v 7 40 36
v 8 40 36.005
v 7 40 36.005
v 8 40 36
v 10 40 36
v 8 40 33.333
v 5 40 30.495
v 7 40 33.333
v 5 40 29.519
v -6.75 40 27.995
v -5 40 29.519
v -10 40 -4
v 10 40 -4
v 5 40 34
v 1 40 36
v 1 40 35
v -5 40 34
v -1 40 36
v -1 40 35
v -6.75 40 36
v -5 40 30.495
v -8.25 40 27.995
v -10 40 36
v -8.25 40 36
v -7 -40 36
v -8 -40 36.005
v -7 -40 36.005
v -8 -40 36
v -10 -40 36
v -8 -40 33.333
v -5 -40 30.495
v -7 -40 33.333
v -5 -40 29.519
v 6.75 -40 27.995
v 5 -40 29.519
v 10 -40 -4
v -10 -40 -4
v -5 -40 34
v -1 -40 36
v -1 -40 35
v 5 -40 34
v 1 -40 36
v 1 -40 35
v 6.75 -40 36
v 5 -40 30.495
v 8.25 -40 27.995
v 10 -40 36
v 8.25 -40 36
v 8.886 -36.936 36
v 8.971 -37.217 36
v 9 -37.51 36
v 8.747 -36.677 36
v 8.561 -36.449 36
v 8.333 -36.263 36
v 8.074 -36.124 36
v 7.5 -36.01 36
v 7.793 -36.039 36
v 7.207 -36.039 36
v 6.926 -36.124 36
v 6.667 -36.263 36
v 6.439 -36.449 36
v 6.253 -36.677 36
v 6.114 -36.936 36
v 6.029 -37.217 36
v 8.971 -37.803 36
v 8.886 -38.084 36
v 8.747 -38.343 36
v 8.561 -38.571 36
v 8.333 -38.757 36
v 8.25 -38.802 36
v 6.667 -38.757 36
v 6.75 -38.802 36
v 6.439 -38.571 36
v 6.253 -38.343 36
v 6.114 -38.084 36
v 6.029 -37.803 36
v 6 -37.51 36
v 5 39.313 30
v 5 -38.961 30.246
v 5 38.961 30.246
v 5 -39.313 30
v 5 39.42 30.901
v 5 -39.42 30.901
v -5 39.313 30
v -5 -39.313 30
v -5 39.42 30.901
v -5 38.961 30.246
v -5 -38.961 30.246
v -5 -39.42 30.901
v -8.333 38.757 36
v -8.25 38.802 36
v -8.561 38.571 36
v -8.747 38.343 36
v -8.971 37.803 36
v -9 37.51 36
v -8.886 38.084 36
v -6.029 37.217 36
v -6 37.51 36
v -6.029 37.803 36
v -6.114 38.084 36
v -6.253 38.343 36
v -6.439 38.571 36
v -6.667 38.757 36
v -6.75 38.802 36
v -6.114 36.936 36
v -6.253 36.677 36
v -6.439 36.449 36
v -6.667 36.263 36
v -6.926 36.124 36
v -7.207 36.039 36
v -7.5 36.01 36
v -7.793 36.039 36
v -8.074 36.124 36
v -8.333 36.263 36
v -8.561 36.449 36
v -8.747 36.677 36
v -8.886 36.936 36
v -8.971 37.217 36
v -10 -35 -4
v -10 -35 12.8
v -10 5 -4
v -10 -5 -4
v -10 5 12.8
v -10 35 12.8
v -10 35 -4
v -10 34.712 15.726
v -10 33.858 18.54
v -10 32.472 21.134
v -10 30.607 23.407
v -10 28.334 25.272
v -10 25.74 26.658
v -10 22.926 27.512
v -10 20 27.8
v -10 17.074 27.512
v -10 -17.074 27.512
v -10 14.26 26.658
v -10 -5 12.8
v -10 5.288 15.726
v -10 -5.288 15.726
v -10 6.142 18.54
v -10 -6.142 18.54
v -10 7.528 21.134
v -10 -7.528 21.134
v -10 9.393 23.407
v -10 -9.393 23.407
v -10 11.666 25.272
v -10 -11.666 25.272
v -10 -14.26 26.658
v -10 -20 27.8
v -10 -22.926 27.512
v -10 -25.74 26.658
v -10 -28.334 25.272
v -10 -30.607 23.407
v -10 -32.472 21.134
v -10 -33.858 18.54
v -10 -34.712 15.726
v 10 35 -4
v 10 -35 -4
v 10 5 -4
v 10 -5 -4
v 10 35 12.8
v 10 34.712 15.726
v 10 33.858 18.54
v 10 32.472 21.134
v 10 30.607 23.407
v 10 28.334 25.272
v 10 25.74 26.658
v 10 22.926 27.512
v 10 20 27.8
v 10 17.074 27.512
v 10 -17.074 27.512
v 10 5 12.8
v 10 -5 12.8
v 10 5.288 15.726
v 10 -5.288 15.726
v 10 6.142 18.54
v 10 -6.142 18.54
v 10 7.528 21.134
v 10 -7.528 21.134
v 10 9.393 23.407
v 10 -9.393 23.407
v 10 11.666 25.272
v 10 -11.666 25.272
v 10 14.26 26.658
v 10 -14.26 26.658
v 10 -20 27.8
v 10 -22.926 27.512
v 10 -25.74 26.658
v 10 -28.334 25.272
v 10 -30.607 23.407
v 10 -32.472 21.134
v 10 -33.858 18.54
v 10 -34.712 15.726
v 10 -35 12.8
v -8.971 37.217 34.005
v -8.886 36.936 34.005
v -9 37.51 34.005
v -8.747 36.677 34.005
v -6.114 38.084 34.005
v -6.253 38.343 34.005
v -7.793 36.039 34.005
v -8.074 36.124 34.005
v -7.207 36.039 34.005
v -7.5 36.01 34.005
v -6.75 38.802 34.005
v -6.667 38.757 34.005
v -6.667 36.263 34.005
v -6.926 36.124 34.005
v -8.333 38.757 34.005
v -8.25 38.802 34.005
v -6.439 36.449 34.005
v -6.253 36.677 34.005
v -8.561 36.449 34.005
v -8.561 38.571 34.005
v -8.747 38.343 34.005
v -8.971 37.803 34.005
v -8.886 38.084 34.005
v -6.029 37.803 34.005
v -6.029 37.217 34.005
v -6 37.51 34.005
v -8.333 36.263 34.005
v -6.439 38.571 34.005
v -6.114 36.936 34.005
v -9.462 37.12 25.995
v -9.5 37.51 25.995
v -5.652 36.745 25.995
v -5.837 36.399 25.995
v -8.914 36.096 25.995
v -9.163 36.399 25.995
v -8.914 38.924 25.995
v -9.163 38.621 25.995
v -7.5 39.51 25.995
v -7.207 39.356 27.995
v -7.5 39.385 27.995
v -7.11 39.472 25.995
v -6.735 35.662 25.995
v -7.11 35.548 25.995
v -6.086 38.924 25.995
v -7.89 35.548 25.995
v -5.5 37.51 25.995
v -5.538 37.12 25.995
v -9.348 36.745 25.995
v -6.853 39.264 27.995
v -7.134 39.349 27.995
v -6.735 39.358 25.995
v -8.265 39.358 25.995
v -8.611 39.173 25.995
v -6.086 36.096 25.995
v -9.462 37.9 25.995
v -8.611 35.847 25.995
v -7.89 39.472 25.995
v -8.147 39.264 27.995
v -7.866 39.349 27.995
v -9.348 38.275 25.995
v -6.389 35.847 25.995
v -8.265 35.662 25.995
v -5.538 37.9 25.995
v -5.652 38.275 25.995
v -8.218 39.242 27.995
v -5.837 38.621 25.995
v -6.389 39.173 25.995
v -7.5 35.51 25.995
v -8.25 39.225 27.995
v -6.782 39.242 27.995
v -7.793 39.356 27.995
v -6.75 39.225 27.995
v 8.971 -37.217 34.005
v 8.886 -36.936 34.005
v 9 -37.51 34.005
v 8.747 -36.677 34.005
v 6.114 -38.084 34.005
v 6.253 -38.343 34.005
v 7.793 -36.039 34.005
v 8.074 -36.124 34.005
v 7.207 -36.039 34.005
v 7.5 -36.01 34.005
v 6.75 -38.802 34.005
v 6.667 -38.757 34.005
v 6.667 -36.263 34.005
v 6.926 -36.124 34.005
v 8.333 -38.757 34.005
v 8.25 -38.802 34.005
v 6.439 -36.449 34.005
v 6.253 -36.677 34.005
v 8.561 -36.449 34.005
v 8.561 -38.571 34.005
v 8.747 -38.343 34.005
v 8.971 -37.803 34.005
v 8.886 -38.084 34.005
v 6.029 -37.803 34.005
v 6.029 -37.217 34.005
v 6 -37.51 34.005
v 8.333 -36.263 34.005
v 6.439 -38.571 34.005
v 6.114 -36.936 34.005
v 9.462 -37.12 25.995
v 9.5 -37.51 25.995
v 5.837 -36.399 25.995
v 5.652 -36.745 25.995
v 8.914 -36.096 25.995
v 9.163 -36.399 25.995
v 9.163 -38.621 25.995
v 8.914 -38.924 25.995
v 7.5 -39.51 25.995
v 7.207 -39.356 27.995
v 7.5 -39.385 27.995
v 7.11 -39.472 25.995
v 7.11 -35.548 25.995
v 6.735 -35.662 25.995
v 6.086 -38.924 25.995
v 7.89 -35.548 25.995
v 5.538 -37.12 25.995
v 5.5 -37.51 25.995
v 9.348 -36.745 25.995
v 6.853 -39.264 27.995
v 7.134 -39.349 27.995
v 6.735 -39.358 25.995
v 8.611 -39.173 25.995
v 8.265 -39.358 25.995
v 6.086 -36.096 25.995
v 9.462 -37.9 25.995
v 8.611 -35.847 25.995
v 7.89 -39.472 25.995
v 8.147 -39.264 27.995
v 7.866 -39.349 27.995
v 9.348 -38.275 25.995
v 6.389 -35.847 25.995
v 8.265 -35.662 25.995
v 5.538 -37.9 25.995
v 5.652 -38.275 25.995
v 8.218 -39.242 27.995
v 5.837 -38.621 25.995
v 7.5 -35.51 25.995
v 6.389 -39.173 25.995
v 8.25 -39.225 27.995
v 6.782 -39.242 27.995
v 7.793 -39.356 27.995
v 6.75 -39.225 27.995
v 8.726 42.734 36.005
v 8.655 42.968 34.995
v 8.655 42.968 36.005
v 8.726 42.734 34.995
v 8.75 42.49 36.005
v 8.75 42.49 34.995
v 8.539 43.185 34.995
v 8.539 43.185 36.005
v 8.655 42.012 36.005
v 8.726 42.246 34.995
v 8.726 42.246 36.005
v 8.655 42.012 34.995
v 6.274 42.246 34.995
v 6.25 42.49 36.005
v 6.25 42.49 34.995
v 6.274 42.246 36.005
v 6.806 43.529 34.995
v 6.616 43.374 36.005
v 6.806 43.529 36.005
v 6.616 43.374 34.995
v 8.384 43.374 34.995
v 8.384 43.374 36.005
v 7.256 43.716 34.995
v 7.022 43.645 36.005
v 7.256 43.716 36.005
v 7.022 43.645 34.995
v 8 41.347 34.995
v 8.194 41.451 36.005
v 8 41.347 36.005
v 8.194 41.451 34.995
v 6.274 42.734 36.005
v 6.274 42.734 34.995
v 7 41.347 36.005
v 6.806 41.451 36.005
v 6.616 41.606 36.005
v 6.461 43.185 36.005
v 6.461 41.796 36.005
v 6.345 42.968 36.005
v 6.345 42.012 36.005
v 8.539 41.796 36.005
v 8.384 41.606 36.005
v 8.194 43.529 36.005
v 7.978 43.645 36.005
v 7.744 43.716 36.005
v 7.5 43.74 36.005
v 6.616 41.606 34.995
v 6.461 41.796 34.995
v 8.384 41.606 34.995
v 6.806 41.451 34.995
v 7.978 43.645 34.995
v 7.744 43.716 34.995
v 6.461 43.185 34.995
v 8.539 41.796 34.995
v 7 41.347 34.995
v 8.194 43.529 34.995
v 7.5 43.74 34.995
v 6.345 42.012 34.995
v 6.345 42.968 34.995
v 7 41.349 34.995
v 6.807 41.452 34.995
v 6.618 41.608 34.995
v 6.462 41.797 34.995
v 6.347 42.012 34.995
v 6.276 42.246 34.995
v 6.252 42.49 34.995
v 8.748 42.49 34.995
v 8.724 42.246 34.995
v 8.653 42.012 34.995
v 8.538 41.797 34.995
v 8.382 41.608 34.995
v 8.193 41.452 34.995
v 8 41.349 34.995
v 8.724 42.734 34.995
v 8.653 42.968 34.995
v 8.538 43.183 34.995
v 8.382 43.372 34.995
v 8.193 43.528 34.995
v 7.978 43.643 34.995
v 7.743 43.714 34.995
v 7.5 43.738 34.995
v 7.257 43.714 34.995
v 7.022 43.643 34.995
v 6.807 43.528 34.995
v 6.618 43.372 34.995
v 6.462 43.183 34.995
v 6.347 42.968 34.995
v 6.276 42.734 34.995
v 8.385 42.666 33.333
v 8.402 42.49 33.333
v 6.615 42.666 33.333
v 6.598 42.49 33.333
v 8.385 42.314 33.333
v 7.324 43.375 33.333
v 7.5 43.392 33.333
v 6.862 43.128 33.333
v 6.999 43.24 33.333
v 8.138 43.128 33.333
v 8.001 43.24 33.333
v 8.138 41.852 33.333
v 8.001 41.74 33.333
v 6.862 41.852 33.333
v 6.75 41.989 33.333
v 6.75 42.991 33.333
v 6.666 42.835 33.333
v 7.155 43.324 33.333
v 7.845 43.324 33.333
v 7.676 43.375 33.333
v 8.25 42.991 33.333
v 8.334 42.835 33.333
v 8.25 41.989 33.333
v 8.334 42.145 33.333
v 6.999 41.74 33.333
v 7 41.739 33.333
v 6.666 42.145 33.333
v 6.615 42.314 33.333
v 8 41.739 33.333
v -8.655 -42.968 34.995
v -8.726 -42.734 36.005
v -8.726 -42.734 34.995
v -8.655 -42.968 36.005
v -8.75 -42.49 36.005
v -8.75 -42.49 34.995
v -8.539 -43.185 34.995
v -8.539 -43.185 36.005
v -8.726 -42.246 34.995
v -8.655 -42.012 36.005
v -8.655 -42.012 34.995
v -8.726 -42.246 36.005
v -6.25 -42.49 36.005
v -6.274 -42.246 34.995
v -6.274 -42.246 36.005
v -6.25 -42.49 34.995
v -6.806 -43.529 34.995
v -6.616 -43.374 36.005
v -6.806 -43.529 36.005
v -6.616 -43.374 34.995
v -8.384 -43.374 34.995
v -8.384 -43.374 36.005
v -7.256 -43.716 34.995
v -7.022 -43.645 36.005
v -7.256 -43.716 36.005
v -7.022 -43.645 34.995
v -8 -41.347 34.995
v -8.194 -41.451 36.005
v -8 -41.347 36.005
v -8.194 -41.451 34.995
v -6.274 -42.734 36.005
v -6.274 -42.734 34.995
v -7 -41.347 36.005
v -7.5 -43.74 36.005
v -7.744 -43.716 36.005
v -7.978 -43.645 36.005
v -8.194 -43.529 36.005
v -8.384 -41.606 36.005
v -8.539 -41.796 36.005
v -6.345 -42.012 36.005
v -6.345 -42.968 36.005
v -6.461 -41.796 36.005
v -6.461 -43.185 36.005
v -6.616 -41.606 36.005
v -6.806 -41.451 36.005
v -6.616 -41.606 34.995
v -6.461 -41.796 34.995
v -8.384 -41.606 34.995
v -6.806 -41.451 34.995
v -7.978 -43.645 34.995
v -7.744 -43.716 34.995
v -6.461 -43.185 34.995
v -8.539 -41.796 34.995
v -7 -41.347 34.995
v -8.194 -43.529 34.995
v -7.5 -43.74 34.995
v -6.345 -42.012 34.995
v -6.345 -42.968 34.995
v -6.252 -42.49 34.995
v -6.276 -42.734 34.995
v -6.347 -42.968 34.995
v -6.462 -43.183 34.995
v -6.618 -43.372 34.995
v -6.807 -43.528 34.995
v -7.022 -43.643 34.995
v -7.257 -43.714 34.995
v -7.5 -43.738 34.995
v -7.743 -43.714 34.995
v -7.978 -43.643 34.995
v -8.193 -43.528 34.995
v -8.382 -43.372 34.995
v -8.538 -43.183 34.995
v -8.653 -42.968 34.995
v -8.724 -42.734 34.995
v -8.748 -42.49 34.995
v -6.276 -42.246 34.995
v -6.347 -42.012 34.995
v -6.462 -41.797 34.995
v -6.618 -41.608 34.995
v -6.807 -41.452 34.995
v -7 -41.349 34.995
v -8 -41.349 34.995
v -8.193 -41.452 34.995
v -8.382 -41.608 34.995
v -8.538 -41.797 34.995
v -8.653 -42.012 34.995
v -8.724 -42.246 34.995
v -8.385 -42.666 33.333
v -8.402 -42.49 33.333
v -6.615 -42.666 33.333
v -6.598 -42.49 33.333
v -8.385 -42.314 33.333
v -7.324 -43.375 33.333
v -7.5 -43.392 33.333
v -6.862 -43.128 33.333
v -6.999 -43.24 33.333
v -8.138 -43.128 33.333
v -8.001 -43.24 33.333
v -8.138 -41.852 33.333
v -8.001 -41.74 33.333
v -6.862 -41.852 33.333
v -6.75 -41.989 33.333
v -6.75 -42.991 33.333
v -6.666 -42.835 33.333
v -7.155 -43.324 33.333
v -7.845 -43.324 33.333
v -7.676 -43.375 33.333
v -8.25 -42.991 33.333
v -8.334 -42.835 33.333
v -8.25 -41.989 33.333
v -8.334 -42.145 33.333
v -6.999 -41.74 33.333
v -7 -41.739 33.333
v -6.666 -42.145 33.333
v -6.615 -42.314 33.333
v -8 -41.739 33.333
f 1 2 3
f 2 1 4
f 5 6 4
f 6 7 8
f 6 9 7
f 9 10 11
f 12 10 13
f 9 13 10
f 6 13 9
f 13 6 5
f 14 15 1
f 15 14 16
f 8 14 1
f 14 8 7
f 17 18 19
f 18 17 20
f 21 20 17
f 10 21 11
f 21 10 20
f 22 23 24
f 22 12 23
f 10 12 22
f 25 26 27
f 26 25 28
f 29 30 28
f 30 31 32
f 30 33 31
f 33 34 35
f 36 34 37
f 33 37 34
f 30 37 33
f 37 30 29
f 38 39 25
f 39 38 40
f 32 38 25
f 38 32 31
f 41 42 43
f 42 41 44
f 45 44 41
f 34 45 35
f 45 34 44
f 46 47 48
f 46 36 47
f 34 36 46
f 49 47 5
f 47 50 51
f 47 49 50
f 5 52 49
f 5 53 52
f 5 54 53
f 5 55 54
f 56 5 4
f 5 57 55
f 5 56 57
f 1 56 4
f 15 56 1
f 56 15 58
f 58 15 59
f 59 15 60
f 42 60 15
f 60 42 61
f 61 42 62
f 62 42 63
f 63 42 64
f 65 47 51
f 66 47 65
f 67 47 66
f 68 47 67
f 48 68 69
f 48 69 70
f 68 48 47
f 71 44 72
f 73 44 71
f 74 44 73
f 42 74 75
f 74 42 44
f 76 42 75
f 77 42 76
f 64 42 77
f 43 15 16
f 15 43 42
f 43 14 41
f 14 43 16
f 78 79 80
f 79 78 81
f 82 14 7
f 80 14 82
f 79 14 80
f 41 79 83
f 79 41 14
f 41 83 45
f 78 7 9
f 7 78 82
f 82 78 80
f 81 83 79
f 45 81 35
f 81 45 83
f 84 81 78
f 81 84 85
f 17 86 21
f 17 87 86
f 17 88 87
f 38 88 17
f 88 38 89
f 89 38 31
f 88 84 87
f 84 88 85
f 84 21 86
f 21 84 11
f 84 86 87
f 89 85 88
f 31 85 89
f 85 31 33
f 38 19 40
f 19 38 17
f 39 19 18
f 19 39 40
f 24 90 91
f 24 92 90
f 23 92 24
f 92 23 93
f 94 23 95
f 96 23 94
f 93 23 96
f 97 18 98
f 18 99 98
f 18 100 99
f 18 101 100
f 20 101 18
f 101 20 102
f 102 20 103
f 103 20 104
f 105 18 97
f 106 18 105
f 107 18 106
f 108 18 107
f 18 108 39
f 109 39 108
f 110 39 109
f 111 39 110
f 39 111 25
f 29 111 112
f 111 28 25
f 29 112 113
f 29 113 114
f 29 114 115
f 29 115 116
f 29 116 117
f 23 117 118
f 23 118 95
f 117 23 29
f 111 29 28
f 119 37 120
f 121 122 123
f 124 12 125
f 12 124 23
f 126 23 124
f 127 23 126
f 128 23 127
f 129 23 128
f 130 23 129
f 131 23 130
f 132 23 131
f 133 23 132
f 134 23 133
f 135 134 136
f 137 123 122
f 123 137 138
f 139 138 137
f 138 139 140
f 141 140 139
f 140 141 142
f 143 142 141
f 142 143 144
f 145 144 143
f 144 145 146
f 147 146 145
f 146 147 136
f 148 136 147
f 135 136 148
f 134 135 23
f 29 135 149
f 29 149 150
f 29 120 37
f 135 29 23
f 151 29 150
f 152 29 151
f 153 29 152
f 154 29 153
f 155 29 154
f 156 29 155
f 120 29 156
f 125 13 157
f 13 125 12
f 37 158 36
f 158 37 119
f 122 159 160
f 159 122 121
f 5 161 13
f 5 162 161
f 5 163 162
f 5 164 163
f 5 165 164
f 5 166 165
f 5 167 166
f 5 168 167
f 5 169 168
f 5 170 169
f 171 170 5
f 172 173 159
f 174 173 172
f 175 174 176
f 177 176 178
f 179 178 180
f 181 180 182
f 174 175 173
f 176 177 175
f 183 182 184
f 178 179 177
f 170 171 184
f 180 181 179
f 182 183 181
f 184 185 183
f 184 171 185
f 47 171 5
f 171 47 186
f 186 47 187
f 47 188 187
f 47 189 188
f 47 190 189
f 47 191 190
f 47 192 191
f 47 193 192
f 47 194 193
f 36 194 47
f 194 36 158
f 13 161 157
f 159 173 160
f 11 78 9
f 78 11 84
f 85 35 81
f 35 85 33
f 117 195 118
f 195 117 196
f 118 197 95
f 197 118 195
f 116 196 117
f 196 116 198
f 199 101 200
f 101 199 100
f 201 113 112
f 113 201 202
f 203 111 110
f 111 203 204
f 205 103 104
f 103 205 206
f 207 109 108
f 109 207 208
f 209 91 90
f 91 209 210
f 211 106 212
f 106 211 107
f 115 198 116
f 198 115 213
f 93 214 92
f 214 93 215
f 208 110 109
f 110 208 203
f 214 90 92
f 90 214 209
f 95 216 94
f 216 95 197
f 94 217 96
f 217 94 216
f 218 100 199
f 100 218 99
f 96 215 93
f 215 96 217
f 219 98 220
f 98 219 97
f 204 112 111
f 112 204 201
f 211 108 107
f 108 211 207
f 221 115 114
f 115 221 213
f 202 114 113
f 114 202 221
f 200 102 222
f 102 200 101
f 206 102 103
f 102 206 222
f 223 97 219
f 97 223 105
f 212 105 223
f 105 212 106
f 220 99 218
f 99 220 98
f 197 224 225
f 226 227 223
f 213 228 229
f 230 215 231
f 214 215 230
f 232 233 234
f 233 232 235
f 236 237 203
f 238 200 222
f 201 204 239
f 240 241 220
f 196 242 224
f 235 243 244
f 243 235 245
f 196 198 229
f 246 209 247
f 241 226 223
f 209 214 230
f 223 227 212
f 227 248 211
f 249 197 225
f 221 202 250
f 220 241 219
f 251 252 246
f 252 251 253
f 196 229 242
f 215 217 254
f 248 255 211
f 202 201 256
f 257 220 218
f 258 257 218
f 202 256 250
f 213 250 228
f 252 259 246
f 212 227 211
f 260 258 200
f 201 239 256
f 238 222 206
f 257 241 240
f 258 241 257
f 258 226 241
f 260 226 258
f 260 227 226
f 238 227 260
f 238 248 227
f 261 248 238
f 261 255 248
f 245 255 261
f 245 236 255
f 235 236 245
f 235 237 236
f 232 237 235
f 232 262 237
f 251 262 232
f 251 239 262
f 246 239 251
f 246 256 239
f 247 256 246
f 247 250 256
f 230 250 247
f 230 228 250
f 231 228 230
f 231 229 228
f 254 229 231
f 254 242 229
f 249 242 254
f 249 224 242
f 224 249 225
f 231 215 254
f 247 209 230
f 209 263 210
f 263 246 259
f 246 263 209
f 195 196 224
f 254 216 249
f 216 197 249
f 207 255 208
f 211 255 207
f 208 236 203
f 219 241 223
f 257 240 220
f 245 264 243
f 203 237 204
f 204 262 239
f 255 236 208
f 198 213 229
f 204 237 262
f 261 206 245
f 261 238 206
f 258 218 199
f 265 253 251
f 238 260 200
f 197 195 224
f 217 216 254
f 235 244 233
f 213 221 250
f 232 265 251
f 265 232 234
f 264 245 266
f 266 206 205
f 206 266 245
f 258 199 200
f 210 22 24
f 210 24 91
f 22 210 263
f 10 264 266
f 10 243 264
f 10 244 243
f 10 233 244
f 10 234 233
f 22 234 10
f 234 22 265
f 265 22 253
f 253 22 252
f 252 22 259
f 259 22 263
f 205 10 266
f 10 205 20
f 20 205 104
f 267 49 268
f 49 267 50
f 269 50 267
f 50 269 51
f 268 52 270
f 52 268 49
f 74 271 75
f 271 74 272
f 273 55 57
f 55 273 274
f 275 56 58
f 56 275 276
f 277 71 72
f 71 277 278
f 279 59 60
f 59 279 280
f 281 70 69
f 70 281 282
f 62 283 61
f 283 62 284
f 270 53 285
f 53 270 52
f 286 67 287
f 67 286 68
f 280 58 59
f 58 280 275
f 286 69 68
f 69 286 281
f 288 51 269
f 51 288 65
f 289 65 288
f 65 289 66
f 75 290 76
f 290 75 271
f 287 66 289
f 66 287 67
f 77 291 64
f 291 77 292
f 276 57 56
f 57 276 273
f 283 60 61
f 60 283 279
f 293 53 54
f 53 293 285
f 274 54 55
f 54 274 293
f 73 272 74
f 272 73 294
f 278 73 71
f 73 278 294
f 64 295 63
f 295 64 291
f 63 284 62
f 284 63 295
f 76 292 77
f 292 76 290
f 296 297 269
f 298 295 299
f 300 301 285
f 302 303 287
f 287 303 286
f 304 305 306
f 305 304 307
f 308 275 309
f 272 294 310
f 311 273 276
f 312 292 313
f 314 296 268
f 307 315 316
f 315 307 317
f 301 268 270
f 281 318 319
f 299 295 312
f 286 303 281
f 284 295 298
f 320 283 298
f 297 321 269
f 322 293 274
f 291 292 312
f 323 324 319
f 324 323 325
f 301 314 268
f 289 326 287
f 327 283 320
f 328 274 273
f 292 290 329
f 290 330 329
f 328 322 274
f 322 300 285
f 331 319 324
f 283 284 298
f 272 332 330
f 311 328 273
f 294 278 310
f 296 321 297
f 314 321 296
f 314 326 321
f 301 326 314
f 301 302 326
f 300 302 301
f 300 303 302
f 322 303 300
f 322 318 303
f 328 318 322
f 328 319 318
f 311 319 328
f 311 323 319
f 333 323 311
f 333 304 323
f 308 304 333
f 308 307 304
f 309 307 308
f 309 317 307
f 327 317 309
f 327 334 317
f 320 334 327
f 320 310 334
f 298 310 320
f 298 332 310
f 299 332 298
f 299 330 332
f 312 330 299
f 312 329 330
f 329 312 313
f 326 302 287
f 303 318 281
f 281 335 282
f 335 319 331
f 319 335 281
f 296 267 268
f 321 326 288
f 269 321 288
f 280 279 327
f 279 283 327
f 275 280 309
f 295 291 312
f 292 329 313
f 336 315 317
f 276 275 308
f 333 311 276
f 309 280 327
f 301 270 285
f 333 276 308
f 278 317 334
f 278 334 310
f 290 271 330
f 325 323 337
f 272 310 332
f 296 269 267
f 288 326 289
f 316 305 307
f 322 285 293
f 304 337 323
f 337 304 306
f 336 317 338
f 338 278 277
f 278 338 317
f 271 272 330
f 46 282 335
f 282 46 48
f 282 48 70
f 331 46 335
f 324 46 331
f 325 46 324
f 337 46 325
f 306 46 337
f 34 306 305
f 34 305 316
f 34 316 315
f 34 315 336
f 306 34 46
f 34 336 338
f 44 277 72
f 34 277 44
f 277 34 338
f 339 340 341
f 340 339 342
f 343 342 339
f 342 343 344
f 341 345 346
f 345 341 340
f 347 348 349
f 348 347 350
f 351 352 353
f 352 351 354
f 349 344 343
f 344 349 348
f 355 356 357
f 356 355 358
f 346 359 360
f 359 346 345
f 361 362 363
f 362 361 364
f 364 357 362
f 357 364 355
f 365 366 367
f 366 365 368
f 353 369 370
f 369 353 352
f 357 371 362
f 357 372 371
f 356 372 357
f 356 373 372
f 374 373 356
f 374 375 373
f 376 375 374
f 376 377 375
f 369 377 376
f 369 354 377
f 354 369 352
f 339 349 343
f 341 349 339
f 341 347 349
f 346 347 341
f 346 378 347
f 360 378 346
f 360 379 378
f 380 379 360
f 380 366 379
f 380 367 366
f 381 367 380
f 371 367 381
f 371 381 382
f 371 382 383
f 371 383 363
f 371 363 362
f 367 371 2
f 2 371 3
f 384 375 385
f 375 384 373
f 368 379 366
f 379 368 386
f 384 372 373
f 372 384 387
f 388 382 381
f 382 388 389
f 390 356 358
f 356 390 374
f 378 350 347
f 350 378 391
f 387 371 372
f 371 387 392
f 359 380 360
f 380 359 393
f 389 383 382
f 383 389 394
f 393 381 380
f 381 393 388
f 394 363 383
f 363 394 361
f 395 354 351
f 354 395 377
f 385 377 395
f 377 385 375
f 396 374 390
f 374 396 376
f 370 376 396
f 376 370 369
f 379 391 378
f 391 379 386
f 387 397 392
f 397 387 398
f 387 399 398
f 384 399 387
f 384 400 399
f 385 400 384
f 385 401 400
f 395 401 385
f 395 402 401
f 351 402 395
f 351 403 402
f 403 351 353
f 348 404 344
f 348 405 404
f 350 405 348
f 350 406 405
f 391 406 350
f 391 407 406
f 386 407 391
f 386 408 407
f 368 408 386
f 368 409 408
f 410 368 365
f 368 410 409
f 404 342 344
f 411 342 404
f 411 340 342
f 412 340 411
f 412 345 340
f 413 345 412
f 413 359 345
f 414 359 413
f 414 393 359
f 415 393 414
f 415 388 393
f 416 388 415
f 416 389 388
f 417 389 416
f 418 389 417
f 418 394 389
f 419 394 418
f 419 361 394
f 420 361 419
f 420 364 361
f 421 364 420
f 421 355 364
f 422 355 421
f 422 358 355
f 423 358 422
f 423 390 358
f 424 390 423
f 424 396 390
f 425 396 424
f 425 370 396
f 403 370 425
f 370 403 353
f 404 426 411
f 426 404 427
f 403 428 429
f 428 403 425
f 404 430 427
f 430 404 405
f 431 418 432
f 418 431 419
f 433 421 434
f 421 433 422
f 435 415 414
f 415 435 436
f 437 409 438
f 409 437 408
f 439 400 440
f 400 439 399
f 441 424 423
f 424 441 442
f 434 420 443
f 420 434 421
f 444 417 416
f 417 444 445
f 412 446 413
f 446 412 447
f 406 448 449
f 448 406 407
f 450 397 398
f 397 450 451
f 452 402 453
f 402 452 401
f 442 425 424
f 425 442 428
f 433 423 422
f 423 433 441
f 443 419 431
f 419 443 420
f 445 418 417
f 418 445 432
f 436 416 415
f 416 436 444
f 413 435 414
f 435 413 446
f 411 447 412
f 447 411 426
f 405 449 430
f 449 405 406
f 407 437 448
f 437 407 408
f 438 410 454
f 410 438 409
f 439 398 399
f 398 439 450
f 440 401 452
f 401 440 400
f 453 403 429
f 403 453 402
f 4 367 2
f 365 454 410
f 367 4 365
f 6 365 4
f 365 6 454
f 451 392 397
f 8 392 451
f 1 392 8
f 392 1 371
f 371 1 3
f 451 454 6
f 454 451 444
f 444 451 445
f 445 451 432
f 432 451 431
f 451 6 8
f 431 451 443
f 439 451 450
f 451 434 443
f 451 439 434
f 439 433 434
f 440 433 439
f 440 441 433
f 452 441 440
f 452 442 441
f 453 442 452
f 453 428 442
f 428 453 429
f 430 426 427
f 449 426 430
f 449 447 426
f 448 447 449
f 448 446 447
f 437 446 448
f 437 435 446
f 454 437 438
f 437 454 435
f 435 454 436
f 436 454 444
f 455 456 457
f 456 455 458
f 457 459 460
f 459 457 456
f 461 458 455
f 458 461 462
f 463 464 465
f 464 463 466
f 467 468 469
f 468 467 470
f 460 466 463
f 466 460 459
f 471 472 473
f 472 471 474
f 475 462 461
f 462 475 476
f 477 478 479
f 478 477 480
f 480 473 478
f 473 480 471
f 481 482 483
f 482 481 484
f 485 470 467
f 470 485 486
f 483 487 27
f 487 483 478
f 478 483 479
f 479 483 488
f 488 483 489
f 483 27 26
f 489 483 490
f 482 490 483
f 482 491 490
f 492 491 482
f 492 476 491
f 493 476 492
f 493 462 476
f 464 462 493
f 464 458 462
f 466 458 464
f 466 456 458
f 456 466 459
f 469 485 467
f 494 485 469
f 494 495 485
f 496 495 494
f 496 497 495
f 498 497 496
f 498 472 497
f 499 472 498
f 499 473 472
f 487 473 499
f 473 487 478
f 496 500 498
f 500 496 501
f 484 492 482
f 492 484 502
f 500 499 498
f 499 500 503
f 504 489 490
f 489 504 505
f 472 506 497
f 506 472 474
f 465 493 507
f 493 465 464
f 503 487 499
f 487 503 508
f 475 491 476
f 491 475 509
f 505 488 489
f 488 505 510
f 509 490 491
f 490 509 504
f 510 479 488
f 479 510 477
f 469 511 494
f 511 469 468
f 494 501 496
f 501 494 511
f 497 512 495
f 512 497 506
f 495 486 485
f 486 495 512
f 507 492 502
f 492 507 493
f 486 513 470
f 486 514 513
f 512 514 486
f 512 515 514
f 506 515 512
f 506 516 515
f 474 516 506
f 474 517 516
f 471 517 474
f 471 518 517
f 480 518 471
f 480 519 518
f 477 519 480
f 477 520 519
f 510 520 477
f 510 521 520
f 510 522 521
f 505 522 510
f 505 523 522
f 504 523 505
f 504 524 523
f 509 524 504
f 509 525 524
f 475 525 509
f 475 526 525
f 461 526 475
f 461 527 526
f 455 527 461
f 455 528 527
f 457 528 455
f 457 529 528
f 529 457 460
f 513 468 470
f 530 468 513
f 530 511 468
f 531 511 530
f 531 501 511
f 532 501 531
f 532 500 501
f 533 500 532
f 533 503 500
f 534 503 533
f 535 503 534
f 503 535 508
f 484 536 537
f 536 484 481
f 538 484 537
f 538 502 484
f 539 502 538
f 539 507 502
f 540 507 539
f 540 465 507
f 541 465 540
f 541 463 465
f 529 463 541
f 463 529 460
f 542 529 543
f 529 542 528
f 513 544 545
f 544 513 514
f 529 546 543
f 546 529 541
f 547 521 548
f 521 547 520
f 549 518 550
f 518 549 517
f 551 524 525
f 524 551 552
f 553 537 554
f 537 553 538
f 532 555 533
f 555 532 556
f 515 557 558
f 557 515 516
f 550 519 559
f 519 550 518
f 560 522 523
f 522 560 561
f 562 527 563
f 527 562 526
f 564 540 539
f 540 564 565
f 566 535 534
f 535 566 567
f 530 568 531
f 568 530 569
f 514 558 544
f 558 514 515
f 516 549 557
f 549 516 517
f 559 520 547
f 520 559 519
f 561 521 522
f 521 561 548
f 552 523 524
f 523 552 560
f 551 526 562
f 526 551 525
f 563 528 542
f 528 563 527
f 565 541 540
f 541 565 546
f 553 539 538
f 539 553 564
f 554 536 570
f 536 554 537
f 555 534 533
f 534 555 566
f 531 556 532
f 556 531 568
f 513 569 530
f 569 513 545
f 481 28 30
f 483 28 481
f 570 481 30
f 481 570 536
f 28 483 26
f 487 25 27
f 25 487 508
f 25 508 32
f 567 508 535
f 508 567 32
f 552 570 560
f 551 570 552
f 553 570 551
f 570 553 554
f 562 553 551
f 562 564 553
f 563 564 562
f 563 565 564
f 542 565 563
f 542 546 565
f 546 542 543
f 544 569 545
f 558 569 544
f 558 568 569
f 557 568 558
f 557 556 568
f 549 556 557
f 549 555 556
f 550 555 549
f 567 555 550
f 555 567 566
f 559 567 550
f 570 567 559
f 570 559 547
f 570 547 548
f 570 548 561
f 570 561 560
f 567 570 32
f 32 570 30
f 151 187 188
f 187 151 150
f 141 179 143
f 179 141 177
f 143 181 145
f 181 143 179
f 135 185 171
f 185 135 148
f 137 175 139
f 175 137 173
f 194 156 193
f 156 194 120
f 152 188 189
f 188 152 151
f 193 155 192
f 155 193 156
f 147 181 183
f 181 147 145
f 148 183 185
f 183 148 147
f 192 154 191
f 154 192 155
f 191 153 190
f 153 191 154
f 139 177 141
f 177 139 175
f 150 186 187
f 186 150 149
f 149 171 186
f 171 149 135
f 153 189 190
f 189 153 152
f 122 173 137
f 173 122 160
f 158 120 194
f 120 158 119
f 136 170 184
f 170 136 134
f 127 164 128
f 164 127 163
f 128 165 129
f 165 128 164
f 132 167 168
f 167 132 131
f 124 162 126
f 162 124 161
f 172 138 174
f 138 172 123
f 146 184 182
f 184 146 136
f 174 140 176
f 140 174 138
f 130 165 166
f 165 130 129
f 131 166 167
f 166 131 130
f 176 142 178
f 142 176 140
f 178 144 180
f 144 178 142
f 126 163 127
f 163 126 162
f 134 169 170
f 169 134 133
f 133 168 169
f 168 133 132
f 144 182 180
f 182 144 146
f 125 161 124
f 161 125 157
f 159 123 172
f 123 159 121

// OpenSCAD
/*

  ttt_high_straight_2.scad

  (c) olikraus@gmail.com

  This work is licensed under the Creative Commons Attribution-NonCommercial-ShareAlike 4.0 International License. 
  To view a copy of this license, visit http://creativecommons.org/licenses/by-nc-sa/4.0/.

  straight two grid tile train tube track
*/
include <train_tube_track.scad>;

difference() {
    translate([0, 0, height])
    straight_track_h_double_plug(2*grid);
    translate([0, -grid/2, 0])
    gate_cutout();
    translate([0, grid/2, 0])
    gate_cutout();
}
